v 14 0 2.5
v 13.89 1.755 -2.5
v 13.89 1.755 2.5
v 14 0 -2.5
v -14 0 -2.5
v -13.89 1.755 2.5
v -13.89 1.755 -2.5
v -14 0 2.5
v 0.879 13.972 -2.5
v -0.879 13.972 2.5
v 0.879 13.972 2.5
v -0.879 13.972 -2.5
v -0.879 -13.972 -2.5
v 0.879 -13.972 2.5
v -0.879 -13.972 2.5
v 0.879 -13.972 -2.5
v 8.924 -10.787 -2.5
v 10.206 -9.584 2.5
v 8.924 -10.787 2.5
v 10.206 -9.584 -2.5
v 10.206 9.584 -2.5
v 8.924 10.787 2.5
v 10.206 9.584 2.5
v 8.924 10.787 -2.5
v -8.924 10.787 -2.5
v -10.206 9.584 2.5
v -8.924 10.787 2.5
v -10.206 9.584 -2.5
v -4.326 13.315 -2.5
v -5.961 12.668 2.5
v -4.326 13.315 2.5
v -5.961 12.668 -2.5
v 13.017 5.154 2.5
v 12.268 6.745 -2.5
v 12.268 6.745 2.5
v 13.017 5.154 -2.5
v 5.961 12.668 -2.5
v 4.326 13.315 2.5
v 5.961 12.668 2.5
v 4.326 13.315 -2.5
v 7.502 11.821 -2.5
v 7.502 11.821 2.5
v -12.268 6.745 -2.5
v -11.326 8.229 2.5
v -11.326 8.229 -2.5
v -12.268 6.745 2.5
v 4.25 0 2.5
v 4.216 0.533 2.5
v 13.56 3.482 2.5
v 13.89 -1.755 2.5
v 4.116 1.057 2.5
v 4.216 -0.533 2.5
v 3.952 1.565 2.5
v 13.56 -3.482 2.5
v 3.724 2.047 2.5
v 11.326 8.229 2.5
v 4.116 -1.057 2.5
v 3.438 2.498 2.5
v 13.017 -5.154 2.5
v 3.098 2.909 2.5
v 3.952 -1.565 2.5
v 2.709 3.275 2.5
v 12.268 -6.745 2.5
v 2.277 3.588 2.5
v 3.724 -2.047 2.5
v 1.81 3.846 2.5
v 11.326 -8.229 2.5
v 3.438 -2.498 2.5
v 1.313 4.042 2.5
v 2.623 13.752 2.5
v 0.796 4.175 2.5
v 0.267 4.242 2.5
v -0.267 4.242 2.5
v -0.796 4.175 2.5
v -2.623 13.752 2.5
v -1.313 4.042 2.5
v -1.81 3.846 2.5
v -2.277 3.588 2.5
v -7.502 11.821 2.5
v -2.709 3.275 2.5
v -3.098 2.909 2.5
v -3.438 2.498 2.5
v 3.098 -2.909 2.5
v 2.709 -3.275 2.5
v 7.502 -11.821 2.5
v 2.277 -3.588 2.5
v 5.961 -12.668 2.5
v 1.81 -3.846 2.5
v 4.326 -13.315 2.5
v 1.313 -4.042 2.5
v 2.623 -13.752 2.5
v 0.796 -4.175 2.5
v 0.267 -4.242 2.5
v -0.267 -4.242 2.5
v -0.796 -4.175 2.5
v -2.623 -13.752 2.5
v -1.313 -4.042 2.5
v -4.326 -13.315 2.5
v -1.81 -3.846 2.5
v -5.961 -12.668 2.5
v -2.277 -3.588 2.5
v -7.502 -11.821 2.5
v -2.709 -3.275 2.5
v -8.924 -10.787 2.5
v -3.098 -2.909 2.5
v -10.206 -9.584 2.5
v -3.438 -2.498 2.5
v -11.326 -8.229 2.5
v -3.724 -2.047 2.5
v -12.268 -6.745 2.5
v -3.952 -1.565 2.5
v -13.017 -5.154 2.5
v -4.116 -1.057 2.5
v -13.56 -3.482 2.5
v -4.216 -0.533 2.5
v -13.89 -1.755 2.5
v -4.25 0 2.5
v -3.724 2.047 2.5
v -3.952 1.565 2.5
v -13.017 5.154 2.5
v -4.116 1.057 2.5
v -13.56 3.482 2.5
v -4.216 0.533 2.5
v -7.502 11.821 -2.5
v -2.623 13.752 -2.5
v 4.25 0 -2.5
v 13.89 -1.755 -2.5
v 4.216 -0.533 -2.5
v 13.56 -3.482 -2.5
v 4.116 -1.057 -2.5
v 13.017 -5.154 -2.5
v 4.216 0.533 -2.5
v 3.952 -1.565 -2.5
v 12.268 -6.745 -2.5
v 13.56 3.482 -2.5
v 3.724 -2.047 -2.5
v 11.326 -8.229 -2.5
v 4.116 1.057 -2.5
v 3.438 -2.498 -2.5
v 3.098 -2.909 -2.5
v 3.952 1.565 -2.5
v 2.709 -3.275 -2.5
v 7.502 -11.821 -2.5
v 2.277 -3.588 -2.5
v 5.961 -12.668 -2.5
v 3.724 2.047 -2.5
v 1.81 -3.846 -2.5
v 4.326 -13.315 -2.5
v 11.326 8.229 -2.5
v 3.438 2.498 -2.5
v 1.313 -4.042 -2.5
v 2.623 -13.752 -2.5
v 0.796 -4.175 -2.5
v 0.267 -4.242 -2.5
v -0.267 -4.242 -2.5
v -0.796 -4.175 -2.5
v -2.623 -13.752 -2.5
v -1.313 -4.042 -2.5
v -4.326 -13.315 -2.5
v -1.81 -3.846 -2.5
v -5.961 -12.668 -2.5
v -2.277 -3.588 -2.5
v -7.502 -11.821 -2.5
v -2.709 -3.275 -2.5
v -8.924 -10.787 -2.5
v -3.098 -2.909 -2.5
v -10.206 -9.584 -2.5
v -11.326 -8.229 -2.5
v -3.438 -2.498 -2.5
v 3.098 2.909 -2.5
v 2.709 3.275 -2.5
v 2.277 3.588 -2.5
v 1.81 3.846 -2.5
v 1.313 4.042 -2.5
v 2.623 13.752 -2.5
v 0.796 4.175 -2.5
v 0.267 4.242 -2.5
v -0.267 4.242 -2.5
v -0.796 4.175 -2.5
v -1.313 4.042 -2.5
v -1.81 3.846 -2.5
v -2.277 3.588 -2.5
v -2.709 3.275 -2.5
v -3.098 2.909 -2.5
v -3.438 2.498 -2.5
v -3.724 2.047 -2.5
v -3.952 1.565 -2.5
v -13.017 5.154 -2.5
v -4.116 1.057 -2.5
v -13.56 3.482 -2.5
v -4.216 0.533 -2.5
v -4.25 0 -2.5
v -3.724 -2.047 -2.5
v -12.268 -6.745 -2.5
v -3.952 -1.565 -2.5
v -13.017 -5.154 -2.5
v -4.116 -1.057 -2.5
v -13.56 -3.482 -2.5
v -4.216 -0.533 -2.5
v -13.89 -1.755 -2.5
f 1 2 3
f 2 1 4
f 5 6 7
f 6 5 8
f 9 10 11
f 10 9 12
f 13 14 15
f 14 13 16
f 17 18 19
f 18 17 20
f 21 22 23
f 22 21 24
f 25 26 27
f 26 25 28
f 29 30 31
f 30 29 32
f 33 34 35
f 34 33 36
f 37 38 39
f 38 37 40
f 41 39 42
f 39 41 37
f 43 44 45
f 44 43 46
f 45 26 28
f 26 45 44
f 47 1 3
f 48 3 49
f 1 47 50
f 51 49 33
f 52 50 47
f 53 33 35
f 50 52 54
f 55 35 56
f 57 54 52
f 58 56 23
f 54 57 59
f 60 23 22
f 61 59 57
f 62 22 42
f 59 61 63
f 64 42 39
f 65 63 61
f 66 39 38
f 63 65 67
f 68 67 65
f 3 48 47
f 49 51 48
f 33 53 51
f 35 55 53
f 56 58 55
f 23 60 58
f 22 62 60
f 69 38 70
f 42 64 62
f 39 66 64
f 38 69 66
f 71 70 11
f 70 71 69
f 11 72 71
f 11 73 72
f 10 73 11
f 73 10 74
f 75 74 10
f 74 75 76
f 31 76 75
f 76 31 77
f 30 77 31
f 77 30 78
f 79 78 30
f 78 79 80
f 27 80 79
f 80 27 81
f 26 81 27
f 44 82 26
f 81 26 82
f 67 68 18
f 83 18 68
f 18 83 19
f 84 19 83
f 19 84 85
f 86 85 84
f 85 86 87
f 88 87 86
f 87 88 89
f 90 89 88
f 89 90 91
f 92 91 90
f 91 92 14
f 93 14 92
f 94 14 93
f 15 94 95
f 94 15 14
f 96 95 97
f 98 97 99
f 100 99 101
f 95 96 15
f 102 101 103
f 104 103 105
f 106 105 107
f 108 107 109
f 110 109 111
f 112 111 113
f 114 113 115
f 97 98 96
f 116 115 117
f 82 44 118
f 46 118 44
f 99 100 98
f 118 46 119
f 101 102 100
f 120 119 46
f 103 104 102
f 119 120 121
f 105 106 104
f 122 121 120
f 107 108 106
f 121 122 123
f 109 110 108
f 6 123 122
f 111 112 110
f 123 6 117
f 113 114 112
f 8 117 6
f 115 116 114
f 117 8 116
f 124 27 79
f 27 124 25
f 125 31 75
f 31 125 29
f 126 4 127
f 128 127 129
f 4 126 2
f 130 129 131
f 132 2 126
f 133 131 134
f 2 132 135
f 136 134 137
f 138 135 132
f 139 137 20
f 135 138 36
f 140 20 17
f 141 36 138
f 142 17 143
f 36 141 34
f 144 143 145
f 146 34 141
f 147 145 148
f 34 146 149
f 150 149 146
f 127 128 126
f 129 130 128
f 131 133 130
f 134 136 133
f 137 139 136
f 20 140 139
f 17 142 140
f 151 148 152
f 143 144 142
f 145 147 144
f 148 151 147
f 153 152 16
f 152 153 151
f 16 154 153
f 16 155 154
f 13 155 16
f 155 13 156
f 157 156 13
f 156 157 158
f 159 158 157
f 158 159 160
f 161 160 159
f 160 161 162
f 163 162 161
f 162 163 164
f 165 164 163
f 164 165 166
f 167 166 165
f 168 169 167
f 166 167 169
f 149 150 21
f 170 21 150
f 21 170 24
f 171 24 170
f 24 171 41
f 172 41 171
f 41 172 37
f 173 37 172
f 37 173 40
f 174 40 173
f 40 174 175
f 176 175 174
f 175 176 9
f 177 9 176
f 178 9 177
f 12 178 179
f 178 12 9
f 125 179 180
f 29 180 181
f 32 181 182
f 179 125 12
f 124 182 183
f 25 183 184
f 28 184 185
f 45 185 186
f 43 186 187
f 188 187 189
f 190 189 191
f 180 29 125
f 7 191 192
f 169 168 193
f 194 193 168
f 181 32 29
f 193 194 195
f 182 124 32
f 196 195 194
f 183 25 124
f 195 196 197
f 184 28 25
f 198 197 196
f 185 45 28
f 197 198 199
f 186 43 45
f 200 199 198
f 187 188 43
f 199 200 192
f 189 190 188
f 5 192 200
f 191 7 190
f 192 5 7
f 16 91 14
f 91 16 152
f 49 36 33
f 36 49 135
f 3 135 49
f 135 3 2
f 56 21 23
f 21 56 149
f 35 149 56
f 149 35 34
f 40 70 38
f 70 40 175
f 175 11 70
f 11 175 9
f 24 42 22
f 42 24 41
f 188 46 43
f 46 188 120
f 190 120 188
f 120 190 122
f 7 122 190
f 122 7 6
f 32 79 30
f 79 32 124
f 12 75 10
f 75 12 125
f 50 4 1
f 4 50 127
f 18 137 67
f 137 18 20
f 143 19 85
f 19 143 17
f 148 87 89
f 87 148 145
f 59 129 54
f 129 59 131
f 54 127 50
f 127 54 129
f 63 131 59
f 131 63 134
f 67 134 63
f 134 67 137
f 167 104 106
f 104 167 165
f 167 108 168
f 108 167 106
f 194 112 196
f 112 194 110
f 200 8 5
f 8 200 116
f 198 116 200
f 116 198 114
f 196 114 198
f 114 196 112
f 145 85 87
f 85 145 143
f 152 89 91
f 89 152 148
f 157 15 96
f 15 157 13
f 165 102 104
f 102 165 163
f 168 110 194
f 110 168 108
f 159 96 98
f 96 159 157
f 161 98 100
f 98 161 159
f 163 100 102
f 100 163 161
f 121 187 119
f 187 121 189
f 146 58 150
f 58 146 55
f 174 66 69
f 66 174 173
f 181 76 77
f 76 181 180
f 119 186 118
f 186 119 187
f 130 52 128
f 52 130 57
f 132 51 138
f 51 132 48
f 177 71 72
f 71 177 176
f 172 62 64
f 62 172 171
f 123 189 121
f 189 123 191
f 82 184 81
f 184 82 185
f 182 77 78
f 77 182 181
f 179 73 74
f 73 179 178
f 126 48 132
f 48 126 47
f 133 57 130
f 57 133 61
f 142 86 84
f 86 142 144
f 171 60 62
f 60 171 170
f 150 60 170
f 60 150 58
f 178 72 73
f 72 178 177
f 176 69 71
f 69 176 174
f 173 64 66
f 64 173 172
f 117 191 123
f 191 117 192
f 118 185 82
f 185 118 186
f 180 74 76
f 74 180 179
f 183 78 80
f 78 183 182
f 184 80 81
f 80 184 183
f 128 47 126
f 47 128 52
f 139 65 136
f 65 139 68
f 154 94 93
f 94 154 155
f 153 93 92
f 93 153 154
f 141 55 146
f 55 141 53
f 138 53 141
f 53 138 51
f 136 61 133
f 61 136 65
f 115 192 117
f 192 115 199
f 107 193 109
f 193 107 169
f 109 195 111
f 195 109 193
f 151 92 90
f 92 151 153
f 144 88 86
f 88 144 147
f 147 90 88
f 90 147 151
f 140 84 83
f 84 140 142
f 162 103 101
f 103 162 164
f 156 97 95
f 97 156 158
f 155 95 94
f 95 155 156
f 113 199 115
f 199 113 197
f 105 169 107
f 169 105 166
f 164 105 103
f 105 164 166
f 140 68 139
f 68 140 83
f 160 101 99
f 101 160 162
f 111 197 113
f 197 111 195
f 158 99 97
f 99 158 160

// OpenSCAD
$fn = 50;


difference() {
	union() {
		translate(v = [0, 0, -2.5000000000]) {
			cylinder(h = 5, r = 14.0000000000);
		}
	}
	union() {
		translate(v = [0, 0, -100.0000000000]) {
			cylinder(h = 200, r = 4.2500000000);
		}
	}
}
